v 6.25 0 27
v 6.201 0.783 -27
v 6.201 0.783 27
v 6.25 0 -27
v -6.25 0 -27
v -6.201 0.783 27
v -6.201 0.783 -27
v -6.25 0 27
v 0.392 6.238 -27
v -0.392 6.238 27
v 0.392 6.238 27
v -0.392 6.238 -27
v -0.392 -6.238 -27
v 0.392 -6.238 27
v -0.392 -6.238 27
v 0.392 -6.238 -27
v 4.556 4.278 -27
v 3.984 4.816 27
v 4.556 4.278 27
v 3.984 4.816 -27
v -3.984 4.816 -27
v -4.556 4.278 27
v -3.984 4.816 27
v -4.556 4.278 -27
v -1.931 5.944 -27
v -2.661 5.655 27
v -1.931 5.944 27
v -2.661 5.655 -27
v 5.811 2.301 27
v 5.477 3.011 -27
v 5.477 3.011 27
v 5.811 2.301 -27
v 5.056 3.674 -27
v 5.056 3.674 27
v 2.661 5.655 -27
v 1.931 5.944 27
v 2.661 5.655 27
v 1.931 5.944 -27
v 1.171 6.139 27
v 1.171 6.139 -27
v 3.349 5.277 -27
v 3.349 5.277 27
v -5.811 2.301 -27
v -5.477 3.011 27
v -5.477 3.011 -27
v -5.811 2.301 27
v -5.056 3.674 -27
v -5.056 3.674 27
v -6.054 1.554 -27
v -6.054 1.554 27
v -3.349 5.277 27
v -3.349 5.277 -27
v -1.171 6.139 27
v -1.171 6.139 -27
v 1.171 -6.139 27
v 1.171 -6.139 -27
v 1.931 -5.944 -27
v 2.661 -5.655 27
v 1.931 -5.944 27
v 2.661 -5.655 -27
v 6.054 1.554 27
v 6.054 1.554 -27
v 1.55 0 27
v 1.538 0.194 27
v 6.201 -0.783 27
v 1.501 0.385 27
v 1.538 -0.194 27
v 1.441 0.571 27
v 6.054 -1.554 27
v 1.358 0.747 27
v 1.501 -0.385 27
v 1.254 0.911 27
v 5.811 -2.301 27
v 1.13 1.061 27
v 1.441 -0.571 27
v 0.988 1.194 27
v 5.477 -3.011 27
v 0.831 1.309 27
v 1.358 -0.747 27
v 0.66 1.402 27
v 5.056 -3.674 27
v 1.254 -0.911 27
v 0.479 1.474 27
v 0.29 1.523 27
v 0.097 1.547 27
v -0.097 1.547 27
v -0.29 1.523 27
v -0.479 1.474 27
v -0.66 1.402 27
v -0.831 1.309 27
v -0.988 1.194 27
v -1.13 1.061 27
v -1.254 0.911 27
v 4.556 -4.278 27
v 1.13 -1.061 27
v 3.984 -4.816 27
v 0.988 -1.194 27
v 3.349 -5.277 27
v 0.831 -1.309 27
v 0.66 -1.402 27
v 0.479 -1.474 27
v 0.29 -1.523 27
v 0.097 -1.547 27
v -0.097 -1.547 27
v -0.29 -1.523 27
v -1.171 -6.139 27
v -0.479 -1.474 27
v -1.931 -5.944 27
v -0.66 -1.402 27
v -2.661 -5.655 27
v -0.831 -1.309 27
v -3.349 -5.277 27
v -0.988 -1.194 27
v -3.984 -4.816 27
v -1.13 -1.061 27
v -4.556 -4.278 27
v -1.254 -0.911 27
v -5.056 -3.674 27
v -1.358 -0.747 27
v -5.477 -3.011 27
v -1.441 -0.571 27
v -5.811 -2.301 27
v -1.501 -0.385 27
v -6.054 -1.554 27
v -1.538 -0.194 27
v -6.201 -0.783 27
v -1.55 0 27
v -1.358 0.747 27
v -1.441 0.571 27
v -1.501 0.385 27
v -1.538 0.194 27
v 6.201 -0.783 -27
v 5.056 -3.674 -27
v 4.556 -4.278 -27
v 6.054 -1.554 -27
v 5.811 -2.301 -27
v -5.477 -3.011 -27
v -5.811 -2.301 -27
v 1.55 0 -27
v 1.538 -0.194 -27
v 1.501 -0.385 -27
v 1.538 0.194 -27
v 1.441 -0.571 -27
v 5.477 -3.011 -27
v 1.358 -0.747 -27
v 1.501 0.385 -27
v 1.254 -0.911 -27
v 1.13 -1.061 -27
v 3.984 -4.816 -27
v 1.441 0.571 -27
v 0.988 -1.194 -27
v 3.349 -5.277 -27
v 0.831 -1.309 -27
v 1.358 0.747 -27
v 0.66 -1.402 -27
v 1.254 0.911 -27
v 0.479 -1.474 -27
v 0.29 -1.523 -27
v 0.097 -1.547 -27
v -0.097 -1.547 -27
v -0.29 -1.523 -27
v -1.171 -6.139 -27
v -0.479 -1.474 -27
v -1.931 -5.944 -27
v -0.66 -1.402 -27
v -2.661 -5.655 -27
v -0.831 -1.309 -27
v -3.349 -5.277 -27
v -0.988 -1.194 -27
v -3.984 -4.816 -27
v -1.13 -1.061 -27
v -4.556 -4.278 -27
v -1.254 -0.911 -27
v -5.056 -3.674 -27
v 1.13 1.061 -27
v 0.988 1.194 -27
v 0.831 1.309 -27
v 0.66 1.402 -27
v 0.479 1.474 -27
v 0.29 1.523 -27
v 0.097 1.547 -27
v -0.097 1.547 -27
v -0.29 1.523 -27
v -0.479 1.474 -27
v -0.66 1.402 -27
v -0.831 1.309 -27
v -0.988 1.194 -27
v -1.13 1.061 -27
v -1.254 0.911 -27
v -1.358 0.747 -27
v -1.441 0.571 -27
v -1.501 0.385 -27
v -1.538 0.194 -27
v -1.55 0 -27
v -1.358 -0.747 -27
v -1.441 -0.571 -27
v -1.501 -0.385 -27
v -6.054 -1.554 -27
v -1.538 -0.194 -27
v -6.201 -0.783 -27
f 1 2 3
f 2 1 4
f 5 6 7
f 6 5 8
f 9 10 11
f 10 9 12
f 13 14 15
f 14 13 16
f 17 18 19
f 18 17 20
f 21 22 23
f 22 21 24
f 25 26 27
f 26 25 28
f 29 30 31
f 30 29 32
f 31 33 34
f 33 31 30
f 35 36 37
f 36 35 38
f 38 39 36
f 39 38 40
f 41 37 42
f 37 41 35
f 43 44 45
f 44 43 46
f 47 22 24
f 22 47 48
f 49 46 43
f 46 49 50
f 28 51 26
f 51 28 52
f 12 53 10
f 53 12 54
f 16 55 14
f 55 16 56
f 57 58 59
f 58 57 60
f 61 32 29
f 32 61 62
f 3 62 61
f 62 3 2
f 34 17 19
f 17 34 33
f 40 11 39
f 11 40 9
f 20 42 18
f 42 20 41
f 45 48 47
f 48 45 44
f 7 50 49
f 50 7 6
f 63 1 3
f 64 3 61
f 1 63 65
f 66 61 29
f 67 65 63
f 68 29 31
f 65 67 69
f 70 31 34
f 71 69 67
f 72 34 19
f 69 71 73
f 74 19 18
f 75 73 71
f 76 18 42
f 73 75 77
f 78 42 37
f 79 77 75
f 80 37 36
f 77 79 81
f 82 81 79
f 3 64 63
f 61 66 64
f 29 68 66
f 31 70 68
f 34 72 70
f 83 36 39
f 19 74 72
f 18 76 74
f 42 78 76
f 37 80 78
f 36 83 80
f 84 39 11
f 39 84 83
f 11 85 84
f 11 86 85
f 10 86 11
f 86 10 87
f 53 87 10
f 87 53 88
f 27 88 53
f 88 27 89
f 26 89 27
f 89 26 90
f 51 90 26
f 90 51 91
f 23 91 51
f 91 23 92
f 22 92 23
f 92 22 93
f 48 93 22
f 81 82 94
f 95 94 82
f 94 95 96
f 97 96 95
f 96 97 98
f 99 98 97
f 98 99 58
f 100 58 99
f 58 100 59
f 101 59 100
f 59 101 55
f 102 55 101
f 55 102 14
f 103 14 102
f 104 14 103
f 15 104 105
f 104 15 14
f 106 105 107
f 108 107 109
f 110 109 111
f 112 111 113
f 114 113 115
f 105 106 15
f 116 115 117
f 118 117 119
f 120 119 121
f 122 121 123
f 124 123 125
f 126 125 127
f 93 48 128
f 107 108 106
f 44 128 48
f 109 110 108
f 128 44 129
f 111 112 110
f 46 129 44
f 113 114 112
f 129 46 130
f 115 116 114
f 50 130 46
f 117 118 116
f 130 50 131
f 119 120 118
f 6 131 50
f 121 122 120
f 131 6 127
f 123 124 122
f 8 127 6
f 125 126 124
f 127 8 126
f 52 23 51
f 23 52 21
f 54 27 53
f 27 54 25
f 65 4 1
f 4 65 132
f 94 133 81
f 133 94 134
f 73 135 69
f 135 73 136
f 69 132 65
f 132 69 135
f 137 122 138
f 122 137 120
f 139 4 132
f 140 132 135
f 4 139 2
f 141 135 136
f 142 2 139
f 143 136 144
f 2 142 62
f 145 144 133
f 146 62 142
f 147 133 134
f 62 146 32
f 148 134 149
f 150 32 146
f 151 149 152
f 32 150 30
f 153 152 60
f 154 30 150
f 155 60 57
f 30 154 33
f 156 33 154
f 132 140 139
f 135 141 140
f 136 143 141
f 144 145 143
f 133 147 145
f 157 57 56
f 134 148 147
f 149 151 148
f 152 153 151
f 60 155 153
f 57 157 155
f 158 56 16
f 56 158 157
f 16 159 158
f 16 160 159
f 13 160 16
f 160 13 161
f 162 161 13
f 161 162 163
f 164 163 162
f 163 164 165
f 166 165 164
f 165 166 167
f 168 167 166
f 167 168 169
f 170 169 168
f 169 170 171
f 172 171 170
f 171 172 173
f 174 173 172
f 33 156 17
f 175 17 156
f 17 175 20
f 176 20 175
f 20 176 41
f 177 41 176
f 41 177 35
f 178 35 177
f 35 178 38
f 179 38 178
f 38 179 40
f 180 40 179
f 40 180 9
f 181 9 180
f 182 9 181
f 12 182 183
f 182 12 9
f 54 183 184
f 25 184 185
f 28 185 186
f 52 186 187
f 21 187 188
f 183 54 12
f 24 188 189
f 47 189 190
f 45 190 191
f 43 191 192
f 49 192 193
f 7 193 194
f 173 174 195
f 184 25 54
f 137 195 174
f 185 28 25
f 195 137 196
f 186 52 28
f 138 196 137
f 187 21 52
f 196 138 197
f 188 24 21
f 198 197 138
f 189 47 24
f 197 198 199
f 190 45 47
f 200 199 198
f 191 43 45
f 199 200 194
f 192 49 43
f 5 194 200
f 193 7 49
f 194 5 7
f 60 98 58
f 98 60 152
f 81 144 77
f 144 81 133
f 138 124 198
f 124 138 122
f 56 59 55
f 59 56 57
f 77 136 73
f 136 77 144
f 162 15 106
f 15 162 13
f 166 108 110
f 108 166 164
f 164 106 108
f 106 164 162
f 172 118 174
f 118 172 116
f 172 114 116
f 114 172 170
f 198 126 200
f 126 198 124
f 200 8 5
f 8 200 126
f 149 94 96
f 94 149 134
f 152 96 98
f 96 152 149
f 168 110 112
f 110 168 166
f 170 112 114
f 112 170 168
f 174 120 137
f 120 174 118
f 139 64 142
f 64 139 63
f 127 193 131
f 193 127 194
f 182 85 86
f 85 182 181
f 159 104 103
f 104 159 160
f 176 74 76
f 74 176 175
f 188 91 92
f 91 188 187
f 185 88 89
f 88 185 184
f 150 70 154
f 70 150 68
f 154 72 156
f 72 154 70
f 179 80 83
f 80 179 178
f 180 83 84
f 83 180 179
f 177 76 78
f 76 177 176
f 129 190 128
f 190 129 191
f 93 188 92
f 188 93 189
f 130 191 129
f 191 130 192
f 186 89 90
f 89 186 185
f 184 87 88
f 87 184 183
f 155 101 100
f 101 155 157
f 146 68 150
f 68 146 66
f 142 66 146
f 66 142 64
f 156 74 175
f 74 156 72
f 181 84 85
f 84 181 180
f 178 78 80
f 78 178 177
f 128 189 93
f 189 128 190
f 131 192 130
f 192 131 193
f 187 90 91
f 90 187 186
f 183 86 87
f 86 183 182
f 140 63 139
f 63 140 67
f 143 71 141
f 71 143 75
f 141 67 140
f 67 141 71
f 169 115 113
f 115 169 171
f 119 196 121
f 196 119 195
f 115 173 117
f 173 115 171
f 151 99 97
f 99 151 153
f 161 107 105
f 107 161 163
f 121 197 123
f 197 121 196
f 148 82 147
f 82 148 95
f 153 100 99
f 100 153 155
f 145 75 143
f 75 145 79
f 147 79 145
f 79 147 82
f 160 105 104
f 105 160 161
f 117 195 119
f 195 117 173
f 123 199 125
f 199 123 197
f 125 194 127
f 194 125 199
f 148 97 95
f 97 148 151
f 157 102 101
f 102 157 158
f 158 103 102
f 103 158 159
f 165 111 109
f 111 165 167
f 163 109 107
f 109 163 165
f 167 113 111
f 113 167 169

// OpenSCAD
$fn = 50;


difference() {
	union() {
		translate(v = [0, 0, -27.0000000000]) {
			cylinder(h = 54, r = 6.2500000000);
		}
	}
	union() {
		translate(v = [0, 0, -100.0000000000]) {
			cylinder(h = 200, r = 1.5500000000);
		}
	}
}
